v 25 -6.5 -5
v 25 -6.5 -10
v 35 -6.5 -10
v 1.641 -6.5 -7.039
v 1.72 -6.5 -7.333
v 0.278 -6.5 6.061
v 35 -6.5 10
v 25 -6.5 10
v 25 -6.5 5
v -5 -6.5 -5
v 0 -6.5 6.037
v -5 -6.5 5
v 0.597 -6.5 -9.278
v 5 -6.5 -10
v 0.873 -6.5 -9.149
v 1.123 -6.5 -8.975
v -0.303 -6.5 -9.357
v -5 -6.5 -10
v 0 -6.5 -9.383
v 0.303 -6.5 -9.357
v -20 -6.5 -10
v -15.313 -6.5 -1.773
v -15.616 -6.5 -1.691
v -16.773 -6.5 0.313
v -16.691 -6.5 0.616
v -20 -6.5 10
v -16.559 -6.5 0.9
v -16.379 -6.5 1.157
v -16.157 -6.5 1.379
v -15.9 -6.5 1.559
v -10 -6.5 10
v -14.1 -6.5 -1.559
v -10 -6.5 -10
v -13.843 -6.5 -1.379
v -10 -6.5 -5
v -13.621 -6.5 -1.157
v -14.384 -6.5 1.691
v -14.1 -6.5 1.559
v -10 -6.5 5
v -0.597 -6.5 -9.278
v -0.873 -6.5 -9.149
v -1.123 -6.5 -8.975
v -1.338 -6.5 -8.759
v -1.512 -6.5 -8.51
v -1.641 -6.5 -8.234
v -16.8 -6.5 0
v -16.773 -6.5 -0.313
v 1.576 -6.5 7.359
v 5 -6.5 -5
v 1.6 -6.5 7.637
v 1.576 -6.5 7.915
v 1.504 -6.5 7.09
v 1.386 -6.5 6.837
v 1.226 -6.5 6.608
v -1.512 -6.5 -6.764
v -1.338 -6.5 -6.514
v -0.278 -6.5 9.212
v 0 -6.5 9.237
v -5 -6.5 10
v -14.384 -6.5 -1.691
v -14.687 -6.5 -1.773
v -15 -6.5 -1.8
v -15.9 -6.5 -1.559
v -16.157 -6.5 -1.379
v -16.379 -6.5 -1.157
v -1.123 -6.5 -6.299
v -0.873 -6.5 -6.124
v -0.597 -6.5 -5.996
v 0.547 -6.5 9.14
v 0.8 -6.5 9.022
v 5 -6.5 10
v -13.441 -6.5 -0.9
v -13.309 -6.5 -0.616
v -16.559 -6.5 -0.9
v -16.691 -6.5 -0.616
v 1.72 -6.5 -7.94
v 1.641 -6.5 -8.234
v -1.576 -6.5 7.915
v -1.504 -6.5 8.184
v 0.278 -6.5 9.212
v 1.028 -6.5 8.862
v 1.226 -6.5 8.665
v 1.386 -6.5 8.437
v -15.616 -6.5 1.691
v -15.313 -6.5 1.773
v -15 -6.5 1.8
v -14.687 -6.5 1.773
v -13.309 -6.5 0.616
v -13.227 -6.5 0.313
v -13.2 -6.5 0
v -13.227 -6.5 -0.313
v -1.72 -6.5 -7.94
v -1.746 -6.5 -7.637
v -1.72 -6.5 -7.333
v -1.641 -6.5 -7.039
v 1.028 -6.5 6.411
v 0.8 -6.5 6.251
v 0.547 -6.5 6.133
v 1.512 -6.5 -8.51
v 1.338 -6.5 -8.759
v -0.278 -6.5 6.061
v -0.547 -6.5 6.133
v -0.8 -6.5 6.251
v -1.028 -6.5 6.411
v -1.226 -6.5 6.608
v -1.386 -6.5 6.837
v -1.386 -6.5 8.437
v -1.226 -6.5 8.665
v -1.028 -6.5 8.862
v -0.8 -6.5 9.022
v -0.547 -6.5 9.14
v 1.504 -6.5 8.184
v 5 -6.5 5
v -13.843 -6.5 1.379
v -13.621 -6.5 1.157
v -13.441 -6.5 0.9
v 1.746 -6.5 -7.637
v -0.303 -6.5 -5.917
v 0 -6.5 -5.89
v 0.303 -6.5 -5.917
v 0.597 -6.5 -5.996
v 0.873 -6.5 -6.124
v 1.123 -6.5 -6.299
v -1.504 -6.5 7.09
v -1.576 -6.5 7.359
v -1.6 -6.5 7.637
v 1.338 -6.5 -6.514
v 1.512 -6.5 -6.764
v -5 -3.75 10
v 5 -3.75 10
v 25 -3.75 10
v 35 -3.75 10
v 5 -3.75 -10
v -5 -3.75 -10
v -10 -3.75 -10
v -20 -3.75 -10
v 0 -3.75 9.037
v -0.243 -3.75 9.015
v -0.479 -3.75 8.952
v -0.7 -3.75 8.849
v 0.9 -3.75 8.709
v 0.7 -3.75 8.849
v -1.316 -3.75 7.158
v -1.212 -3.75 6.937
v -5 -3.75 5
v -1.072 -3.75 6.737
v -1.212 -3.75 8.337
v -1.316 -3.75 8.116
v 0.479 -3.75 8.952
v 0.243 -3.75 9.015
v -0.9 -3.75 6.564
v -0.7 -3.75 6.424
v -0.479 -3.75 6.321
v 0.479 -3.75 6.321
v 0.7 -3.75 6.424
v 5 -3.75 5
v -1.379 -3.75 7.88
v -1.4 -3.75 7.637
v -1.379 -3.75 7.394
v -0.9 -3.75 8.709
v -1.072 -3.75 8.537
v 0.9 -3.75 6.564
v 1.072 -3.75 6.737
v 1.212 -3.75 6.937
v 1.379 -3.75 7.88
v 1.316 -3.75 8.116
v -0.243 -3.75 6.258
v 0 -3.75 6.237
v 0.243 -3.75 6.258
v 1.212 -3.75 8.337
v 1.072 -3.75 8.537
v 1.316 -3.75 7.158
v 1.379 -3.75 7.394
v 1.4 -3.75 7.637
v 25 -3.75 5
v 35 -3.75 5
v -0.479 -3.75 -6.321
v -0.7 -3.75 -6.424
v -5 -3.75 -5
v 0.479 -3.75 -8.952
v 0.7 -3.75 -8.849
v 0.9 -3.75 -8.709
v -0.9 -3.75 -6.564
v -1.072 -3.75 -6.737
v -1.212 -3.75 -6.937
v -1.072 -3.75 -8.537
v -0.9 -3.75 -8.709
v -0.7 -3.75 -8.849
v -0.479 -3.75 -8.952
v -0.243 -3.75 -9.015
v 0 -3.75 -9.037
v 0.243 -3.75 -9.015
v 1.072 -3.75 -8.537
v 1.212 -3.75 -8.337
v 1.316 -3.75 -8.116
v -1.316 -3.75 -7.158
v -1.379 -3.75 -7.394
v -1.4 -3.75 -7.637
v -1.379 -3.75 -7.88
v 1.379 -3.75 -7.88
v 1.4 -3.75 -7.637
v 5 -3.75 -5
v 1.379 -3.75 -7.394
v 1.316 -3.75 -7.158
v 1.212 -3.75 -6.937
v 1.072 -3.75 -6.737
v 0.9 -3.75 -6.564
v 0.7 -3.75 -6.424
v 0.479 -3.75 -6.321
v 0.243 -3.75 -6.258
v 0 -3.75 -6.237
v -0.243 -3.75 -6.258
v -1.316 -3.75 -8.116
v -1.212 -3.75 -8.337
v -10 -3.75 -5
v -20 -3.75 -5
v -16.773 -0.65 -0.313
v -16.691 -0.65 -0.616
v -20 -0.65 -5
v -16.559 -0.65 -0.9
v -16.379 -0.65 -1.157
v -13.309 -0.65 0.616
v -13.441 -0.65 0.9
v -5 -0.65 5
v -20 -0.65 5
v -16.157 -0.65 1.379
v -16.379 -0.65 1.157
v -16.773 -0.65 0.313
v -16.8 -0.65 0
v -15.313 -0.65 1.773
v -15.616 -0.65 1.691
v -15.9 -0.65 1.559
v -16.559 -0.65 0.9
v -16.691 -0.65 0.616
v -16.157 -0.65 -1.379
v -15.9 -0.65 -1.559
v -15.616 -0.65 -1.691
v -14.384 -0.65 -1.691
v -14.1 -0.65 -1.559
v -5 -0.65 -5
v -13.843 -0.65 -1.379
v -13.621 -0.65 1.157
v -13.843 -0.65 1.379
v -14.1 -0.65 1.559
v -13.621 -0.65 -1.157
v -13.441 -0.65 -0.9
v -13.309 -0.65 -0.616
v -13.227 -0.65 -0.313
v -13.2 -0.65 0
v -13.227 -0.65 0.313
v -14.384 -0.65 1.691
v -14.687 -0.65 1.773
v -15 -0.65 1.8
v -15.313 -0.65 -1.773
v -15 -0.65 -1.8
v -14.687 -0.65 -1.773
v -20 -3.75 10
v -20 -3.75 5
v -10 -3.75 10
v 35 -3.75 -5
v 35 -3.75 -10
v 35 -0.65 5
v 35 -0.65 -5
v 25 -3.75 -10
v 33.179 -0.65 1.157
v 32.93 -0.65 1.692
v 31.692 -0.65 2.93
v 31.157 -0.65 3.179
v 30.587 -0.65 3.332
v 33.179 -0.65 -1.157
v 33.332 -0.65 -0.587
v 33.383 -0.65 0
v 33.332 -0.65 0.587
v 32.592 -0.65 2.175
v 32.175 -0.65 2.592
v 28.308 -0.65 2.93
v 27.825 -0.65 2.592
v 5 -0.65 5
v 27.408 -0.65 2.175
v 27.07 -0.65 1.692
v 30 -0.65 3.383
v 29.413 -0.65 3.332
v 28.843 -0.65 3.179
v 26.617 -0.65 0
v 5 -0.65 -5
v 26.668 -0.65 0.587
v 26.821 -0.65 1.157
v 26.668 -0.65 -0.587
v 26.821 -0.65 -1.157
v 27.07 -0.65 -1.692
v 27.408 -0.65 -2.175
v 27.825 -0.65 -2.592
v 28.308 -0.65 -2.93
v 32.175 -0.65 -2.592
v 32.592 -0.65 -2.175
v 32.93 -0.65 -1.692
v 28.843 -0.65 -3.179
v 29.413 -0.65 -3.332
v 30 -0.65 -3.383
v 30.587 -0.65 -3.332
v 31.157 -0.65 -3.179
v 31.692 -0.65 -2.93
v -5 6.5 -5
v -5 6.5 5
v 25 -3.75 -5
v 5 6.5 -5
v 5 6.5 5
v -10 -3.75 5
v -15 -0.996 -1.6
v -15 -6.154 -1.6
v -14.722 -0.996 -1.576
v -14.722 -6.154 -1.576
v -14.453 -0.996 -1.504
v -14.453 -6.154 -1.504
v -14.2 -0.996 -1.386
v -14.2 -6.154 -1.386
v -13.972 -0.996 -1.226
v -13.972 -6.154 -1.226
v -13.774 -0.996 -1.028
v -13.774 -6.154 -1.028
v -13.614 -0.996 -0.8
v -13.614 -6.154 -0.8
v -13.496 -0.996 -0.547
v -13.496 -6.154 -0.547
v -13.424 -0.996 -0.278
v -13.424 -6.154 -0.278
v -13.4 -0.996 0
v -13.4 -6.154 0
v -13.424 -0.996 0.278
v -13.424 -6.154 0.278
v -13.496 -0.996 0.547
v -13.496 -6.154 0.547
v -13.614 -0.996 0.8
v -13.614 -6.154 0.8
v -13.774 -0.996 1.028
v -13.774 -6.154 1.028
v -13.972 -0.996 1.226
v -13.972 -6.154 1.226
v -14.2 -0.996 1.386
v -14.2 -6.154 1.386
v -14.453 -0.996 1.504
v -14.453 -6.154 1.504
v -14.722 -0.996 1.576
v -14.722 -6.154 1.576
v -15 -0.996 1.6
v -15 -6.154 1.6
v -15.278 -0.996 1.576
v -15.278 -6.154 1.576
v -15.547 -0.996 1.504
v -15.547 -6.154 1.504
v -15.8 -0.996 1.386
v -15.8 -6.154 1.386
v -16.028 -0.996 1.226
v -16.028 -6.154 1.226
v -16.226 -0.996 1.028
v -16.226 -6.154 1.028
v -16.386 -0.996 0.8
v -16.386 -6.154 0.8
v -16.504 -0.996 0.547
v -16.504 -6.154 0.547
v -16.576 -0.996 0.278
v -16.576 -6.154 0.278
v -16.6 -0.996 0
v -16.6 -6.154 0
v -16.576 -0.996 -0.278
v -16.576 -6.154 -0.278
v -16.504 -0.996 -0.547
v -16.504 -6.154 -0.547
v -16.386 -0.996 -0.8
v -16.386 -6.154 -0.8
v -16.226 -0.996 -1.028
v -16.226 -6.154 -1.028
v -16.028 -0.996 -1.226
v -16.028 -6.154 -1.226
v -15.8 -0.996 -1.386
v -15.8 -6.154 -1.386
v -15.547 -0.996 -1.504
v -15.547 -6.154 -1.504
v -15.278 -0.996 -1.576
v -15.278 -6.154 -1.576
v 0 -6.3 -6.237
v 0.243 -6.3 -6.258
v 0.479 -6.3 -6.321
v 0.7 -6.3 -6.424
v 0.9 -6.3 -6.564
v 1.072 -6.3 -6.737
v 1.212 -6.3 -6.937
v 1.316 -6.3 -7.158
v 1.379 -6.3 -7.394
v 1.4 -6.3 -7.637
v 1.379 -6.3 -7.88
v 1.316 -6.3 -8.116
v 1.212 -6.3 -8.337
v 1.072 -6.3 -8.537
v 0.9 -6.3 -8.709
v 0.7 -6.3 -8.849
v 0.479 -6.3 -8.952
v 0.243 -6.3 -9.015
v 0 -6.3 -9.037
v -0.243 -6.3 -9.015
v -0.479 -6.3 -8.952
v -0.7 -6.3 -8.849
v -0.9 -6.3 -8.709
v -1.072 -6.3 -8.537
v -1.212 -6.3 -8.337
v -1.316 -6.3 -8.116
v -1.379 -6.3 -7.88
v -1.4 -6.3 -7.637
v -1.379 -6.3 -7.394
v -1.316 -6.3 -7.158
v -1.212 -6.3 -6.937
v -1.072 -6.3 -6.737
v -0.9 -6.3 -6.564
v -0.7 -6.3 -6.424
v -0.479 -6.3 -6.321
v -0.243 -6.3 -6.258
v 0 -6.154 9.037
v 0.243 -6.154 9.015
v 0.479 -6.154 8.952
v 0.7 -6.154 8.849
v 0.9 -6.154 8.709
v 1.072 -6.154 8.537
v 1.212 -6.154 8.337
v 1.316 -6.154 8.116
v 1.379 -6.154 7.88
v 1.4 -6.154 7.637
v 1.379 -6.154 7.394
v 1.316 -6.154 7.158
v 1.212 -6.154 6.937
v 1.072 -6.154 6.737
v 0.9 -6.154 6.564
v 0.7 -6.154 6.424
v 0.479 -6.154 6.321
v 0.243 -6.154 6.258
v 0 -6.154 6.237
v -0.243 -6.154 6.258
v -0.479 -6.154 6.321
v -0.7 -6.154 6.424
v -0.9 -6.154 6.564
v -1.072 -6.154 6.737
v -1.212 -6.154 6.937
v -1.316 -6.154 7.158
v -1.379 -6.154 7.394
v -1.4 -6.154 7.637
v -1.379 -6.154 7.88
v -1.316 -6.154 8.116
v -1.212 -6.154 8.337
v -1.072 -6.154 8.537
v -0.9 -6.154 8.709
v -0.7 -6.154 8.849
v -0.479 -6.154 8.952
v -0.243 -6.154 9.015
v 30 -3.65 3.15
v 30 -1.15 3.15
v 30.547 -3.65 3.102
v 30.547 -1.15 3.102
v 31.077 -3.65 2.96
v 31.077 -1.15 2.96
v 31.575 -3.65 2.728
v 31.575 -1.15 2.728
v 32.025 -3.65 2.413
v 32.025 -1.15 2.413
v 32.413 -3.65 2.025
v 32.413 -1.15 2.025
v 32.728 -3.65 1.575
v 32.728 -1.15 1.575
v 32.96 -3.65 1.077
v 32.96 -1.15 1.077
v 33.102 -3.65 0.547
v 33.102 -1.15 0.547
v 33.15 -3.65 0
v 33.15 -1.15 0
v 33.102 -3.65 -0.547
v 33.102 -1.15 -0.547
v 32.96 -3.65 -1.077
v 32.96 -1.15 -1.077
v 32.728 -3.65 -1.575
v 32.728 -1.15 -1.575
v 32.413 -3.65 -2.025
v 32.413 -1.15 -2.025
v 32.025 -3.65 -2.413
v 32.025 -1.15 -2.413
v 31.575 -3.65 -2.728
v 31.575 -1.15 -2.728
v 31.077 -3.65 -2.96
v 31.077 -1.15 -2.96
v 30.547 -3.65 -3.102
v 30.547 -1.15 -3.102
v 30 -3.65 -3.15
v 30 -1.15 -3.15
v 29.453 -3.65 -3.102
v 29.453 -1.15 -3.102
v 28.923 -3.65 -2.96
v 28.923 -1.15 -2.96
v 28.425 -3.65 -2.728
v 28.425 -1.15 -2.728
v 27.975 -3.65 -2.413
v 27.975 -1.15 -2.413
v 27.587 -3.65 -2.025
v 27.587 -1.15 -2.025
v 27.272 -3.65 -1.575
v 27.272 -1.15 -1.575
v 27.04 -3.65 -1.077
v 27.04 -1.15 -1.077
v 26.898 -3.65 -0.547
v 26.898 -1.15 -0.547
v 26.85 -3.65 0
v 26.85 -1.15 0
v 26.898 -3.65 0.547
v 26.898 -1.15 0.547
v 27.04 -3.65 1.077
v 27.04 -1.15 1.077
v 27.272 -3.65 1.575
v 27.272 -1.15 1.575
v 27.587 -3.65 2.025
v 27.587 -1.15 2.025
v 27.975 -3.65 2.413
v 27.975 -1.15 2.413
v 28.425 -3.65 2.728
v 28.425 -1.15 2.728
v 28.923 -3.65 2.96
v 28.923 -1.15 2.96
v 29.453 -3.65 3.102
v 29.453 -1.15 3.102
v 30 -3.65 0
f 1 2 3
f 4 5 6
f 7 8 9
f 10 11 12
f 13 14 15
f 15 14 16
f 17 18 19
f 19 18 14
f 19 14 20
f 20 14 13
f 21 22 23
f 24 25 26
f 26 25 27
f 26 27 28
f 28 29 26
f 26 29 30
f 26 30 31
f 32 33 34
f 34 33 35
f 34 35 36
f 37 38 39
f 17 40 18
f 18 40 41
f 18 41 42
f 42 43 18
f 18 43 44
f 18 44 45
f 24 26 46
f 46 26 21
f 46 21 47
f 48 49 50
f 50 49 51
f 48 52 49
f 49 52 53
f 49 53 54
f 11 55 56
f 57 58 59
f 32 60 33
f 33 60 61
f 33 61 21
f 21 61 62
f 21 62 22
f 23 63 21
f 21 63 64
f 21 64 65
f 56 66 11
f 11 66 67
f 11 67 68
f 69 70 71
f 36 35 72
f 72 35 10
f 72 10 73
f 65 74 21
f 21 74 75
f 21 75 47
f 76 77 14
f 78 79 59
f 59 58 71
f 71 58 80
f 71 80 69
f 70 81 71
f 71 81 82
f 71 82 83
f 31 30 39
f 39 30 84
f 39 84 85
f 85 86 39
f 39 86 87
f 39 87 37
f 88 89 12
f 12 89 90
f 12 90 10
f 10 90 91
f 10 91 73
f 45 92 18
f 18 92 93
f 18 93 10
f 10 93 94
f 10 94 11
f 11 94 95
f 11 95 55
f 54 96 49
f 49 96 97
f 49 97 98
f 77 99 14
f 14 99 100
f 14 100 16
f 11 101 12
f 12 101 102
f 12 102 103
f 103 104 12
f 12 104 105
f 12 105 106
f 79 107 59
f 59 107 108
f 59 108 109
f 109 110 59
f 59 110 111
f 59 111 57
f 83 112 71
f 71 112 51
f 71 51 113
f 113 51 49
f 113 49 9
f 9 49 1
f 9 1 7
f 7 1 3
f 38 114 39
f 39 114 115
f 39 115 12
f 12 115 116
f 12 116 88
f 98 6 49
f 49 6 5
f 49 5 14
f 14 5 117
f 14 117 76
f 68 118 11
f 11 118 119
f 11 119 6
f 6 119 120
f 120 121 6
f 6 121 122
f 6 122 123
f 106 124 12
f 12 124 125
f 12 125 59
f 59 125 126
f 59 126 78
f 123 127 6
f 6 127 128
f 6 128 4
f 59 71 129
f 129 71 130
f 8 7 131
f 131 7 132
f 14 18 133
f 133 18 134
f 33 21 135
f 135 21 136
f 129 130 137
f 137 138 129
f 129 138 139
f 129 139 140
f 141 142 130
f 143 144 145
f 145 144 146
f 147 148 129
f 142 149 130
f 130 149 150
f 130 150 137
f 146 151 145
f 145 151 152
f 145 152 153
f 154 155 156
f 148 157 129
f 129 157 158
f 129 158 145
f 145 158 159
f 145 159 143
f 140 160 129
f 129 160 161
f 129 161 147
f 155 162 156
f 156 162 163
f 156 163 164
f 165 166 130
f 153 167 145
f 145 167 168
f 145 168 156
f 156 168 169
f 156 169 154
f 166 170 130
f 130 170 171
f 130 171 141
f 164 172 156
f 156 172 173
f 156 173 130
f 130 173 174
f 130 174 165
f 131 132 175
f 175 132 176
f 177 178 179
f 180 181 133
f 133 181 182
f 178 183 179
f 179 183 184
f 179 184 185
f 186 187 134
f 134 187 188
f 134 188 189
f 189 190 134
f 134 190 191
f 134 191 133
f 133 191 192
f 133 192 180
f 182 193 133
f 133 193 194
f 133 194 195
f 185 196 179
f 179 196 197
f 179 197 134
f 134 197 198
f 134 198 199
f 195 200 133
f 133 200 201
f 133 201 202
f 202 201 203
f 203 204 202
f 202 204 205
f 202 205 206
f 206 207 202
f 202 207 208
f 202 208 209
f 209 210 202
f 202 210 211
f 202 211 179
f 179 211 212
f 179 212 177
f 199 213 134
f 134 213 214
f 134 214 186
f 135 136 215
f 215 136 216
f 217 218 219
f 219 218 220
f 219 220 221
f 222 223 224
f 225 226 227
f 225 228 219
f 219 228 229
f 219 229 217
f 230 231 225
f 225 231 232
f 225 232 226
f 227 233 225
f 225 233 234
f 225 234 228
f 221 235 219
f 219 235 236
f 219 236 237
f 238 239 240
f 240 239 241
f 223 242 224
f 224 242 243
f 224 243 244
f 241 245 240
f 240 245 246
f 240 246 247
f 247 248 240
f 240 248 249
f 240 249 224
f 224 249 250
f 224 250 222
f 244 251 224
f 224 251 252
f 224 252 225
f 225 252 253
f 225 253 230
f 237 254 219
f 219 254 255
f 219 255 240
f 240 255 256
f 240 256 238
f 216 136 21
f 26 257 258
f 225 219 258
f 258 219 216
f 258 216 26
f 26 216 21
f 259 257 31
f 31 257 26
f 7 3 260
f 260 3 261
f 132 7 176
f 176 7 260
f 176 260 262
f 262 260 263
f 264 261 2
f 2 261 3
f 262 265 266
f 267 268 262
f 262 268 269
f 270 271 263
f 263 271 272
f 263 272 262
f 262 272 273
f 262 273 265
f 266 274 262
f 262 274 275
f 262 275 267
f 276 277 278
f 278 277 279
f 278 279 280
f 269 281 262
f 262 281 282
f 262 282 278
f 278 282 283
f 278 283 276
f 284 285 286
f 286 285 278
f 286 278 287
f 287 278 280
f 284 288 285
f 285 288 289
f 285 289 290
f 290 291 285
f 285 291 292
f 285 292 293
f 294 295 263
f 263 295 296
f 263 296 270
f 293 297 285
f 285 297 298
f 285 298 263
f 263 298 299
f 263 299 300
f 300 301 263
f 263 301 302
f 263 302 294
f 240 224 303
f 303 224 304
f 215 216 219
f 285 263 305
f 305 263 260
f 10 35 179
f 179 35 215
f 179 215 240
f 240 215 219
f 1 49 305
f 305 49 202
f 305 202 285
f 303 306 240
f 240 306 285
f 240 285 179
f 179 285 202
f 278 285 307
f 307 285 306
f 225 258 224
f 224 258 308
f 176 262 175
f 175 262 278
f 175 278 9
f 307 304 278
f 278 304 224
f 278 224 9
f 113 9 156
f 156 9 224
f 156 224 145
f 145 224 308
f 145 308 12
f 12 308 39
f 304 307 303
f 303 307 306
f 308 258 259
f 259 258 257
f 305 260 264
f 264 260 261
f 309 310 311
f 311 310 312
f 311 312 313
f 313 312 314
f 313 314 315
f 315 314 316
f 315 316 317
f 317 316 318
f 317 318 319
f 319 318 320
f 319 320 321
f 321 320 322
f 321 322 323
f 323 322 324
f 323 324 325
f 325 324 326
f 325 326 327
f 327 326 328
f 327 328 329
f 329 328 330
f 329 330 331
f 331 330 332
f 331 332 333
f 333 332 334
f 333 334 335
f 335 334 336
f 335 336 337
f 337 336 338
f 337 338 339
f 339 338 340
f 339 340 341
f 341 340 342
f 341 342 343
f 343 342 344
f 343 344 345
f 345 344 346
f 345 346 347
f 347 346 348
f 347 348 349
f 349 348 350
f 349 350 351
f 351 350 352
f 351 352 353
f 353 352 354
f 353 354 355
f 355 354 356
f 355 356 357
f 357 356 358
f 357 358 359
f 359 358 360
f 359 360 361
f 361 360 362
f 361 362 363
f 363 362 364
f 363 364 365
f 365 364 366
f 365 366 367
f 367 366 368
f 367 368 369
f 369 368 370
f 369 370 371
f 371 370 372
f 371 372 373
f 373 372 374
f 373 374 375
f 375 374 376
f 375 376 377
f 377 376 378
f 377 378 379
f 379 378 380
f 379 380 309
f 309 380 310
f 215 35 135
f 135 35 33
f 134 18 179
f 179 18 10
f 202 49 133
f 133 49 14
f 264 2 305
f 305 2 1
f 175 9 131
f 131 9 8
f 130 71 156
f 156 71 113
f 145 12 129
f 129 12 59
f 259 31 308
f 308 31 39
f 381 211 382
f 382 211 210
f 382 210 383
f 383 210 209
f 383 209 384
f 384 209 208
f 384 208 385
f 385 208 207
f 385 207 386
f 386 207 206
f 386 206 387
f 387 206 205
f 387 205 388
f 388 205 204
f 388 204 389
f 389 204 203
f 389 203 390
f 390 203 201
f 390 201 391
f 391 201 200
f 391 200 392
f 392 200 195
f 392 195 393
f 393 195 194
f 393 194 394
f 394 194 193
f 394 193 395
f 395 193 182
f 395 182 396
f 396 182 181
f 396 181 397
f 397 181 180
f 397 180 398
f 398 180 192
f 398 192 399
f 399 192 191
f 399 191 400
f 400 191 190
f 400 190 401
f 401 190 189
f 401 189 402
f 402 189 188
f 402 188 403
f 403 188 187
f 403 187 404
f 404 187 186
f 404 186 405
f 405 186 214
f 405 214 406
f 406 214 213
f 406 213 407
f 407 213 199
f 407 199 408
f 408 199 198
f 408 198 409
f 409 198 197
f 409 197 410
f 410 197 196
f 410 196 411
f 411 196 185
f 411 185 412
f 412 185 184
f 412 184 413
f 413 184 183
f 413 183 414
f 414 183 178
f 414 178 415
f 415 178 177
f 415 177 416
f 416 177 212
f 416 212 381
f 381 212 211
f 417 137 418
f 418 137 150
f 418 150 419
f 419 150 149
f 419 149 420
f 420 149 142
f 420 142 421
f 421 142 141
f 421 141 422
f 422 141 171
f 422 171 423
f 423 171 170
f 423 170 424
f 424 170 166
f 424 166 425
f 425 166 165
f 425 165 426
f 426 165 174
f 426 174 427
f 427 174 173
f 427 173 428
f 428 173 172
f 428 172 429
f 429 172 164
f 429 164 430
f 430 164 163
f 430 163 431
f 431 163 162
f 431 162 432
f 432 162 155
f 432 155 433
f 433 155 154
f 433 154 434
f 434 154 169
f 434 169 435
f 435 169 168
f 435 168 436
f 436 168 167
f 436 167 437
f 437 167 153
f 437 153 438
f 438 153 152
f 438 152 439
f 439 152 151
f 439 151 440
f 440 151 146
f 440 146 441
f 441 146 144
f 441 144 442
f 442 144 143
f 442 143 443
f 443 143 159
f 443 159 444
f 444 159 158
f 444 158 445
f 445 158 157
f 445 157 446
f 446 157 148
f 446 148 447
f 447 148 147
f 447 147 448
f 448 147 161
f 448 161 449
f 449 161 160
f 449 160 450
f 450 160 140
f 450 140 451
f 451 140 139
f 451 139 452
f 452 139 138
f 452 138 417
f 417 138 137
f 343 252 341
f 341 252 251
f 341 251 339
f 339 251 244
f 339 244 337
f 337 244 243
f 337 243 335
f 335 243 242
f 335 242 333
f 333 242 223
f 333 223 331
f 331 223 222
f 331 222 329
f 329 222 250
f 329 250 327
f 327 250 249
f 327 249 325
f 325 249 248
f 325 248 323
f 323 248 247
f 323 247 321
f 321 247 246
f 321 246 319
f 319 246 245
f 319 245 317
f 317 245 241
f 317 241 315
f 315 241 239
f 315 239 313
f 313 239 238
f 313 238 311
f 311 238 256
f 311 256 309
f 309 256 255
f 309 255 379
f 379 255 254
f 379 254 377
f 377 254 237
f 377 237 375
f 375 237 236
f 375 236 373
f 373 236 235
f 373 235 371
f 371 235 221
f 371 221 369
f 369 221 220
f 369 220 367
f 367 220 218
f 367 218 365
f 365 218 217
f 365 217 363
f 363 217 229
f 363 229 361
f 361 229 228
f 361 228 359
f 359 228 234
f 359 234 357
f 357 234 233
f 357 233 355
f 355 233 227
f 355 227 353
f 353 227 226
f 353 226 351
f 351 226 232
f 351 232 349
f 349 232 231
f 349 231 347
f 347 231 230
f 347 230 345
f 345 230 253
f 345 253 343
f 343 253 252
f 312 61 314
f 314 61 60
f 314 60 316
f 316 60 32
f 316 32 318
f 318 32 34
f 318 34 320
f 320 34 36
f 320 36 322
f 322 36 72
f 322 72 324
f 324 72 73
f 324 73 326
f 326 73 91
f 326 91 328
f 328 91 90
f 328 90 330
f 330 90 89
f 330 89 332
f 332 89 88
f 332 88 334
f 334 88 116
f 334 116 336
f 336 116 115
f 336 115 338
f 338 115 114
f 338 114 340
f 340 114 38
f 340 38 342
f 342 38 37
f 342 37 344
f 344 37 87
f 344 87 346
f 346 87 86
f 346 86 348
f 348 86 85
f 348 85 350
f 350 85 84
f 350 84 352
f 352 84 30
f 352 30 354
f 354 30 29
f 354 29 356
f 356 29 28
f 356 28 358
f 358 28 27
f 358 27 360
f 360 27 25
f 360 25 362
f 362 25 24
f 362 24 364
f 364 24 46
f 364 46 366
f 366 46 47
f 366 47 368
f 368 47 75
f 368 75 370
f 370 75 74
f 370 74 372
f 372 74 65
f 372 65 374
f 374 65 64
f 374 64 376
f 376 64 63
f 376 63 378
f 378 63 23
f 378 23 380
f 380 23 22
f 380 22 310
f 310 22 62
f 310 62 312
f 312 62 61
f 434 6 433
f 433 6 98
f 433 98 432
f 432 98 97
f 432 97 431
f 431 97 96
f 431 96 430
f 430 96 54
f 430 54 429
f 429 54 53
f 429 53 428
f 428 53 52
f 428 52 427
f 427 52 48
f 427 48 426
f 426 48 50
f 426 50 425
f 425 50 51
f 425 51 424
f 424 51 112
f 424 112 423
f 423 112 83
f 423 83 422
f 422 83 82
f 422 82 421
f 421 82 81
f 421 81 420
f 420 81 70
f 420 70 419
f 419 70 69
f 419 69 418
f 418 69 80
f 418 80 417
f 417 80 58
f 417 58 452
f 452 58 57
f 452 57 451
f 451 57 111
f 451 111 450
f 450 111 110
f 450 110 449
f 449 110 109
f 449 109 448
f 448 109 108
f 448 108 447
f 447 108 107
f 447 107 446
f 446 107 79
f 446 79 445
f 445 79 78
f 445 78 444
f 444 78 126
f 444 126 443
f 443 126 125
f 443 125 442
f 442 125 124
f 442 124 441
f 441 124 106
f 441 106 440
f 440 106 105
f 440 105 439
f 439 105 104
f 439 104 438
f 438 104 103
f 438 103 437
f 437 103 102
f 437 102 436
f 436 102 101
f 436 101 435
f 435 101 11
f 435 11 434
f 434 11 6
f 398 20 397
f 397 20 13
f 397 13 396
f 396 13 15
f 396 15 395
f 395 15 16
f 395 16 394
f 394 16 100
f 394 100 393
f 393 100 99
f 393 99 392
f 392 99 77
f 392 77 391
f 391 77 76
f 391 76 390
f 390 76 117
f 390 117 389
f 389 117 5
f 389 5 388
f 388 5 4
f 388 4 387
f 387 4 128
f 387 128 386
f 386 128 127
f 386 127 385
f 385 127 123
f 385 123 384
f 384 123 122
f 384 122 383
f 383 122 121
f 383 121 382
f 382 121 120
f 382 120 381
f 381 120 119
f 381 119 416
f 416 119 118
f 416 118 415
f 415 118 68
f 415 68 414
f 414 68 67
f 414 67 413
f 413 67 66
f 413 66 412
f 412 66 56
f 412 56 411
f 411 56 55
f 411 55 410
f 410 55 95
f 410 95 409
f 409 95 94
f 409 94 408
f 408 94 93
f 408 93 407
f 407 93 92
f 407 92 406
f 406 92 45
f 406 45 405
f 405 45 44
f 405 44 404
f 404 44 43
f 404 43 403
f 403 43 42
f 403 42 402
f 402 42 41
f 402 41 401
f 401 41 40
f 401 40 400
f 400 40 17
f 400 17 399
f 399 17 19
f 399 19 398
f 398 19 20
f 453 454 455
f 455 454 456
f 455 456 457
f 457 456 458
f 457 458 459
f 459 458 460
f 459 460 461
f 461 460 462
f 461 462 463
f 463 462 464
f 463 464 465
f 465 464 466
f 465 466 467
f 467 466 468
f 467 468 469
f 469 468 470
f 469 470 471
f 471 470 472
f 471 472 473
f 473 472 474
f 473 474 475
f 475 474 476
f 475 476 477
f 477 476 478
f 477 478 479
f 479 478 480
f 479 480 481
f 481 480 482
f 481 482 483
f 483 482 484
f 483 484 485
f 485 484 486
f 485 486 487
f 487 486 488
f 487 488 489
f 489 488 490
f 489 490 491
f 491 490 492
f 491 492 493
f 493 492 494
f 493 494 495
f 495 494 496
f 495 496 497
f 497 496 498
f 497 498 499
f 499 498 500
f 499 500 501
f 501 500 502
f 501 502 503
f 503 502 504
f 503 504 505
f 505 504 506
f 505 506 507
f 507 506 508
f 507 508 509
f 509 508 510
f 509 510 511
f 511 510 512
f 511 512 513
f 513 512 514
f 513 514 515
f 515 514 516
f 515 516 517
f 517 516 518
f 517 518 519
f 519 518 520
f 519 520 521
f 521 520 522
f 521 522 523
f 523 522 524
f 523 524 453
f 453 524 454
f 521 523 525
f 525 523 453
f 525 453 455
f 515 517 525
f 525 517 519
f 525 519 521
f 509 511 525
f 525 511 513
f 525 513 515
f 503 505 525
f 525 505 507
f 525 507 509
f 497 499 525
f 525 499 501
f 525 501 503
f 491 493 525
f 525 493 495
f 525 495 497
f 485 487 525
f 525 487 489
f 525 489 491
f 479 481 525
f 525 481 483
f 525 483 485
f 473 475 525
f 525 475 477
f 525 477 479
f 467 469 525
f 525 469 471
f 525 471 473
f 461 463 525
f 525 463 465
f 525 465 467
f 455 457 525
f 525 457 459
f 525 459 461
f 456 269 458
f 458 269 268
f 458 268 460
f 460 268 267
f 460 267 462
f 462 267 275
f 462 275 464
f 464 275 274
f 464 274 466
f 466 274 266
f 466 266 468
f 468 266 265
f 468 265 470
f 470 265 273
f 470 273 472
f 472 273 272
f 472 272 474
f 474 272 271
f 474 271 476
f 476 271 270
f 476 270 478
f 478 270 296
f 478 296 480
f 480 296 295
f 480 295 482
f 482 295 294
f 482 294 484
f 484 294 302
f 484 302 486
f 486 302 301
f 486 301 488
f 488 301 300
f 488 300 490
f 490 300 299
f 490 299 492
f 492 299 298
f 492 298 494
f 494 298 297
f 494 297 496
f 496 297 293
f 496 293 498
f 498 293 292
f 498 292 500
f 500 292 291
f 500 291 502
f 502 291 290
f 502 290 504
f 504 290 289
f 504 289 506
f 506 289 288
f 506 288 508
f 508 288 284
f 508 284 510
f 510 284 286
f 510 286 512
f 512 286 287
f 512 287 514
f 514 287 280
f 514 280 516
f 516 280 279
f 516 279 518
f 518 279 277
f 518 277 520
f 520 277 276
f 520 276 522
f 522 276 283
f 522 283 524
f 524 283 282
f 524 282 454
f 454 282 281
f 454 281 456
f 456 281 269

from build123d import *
from OCP.BRepFilletAPI import BRepFilletAPI_MakeChamfer

# Parameters (mm, degrees)
SKETCH1_W           = 55
SKETCH1_H           = 20
BOSS_EXTRUDE1_DEPTH = 6.5
SKETCH2_W           = 10
SKETCH2_H           = 10
CUT_EXTRUDE3_DEPTH  = 7.15
SKETCH6_W           = 55
SKETCH6_H           = 5
CUT_EXTRUDE4_DEPTH  = 3.1
SKETCH7_R           = 1.6
CUT_EXTRUDE5_DEPTH  = 10
SKETCH9_W           = 5
SKETCH9_H           = 5
SKETCH9_W_2         = 20
CUT_EXTRUDE6_DEPTH  = 3
SKETCH10_R          = 1.4
CUT_EXTRUDE7_DEPTH  = 3
CHAMFER1_SIZE       = 0.2
CHAMFER1_SIZE2      = 0.346410162
SKETCH12_R          = 3.15
CUT_EXTRUDE8_DEPTH  = 3
CHAMFER2_SIZE       = 0.5
CHAMFER2_SIZE2      = 0.233153829


with BuildPart() as part:
    # Sketch1 → Boss-Extrude1 (new, symmetric)
    with BuildSketch(Plane(origin=(0, 0, 0), x_dir=(1, 0, 0), z_dir=(0, 1, 0))):
        with Locations((7.5, 0)):
            Rectangle(SKETCH1_W, SKETCH1_H)
    extrude(amount=BOSS_EXTRUDE1_DEPTH, both=True)

    # Sketch2 → Cut-Extrude3 (cut)
    with BuildSketch(Plane(origin=(0, 6.5, 0), x_dir=(1, 0, 0), z_dir=(0, 1, 0))):
        Polygon((-5, -10), (-20, -10), (-20, 10), (-5, 10), (5, 10), (35, 10), (35, -10), (5, -10), align=None)
        Rectangle(SKETCH2_W, SKETCH2_H, mode=Mode.SUBTRACT)
    extrude(amount=-CUT_EXTRUDE3_DEPTH, mode=Mode.SUBTRACT)

    # Sketch6 → Cut-Extrude4 (cut)
    with BuildSketch(Plane(origin=(0, -0.65, 0), x_dir=(1, 0, 0), z_dir=(0, 1, 0))):
        with Locations((7.5, -7.5)):
            Rectangle(SKETCH6_W, SKETCH6_H)
        Polygon((-5, 5), (-20, 5), (-20, 10), (35, 10), (35, 5), align=None)
    extrude(amount=-CUT_EXTRUDE4_DEPTH, mode=Mode.SUBTRACT)

    # Sketch7 → Cut-Extrude5 (cut)
    with BuildSketch(Plane.XZ.offset(6.5)):
        with Locations(Location((-15, 0, 0), (0, 0, 270))):
            Circle(SKETCH7_R)
    extrude(amount=-CUT_EXTRUDE5_DEPTH, mode=Mode.SUBTRACT)

    # Sketch9 → Cut-Extrude6 (cut)
    with BuildSketch(Plane(origin=(0, -3.75, 0), x_dir=(1, 0, 0), z_dir=(0, 1, 0))):
        with Locations((-7.5, 7.5)):
            Rectangle(SKETCH9_W, SKETCH9_H)
        with Locations((-7.5, -7.5)):
            Rectangle(SKETCH9_W, SKETCH9_H)
        with Locations((15, 7.5)):
            Rectangle(SKETCH9_W_2, SKETCH9_H)
        with Locations((15, -7.5)):
            Rectangle(SKETCH9_W_2, SKETCH9_H)
    extrude(amount=-CUT_EXTRUDE6_DEPTH, mode=Mode.SUBTRACT)

    # Sketch10 → Cut-Extrude7 (cut)
    with BuildSketch(Plane(origin=(0, -3.75, 0), x_dir=(1, 0, 0), z_dir=(0, 1, 0))):
        with Locations(Location((0, 7.636752006, 0), (0, 0, 270))):
            Circle(SKETCH10_R)
        with Locations(Location((0, -7.636752006, 0), (0, 0, 270))):
            Circle(SKETCH10_R)
    extrude(amount=-CUT_EXTRUDE7_DEPTH, mode=Mode.SUBTRACT)

    # Chamfer1: one chamfer whose edges measure the first distance from different faces: ONE call of the kernel's chamfer builder (chamfer() names one face for all edges)
    chamfer1_edges_1 = [part.edges().sort_by_distance(p)[0] for p in [
        (0, -6.5, 6.236752006),
        (-15, -6.5, 1.6),
    ]]
    chamfer1_side_1 = [part.faces().sort_by_distance(p)[0] for p in [
        (6.925437522, -6.5, 0),
    ]]
    chamfer1_edges_2 = [part.edges().sort_by_distance(p)[0] for p in [
        (0, -6.5, -9.036752006),
    ]]
    chamfer1_side_2 = [part.faces().sort_by_distance(p)[0] for p in [
        (0, -5.125, -9.036752006),
    ]]
    chamfer1_edges_3 = [part.edges().sort_by_distance(p)[0] for p in [
        (-15, -0.65, 1.6),
    ]]
    chamfer1_side_3 = [part.faces().sort_by_distance(p)[0] for p in [
        (-12.358364724, -0.65, 0),
    ]]
    chamfer1 = BRepFilletAPI_MakeChamfer(part.part.solid().wrapped)
    for e in chamfer1_edges_1:
        chamfer1.Add(CHAMFER1_SIZE, CHAMFER1_SIZE2, e.wrapped, chamfer1_side_1[0].wrapped)  # the first distance lies on this face
    for e in chamfer1_edges_2:
        chamfer1.Add(CHAMFER1_SIZE, CHAMFER1_SIZE2, e.wrapped, chamfer1_side_2[0].wrapped)  # the first distance lies on this face
    for e in chamfer1_edges_3:
        chamfer1.Add(CHAMFER1_SIZE, CHAMFER1_SIZE2, e.wrapped, chamfer1_side_3[0].wrapped)  # the first distance lies on this face
    add(Compound.cast(chamfer1.Shape()), mode=Mode.REPLACE)

    # Sketch12 → Cut-Extrude8 (cut)
    with BuildSketch(Plane(origin=(0, -0.65, 0), x_dir=(1, 0, 0), z_dir=(0, 1, 0))):
        with Locations(Location((30, 0, 0), (0, 0, 270))):
            Circle(SKETCH12_R)
    extrude(amount=-CUT_EXTRUDE8_DEPTH, mode=Mode.SUBTRACT)

    # Chamfer2
    chamfer2_edges = [part.edges().sort_by_distance(p)[0] for p in [
        (30, -0.65, -3.15),
    ]]
    chamfer2_side = [part.faces().sort_by_distance(p)[0] for p in [
        (30, -2.15, -3.15),
    ]]
    chamfer(chamfer2_edges, length=CHAMFER2_SIZE, length2=CHAMFER2_SIZE2, reference=chamfer2_side[0])


solid = part.part
